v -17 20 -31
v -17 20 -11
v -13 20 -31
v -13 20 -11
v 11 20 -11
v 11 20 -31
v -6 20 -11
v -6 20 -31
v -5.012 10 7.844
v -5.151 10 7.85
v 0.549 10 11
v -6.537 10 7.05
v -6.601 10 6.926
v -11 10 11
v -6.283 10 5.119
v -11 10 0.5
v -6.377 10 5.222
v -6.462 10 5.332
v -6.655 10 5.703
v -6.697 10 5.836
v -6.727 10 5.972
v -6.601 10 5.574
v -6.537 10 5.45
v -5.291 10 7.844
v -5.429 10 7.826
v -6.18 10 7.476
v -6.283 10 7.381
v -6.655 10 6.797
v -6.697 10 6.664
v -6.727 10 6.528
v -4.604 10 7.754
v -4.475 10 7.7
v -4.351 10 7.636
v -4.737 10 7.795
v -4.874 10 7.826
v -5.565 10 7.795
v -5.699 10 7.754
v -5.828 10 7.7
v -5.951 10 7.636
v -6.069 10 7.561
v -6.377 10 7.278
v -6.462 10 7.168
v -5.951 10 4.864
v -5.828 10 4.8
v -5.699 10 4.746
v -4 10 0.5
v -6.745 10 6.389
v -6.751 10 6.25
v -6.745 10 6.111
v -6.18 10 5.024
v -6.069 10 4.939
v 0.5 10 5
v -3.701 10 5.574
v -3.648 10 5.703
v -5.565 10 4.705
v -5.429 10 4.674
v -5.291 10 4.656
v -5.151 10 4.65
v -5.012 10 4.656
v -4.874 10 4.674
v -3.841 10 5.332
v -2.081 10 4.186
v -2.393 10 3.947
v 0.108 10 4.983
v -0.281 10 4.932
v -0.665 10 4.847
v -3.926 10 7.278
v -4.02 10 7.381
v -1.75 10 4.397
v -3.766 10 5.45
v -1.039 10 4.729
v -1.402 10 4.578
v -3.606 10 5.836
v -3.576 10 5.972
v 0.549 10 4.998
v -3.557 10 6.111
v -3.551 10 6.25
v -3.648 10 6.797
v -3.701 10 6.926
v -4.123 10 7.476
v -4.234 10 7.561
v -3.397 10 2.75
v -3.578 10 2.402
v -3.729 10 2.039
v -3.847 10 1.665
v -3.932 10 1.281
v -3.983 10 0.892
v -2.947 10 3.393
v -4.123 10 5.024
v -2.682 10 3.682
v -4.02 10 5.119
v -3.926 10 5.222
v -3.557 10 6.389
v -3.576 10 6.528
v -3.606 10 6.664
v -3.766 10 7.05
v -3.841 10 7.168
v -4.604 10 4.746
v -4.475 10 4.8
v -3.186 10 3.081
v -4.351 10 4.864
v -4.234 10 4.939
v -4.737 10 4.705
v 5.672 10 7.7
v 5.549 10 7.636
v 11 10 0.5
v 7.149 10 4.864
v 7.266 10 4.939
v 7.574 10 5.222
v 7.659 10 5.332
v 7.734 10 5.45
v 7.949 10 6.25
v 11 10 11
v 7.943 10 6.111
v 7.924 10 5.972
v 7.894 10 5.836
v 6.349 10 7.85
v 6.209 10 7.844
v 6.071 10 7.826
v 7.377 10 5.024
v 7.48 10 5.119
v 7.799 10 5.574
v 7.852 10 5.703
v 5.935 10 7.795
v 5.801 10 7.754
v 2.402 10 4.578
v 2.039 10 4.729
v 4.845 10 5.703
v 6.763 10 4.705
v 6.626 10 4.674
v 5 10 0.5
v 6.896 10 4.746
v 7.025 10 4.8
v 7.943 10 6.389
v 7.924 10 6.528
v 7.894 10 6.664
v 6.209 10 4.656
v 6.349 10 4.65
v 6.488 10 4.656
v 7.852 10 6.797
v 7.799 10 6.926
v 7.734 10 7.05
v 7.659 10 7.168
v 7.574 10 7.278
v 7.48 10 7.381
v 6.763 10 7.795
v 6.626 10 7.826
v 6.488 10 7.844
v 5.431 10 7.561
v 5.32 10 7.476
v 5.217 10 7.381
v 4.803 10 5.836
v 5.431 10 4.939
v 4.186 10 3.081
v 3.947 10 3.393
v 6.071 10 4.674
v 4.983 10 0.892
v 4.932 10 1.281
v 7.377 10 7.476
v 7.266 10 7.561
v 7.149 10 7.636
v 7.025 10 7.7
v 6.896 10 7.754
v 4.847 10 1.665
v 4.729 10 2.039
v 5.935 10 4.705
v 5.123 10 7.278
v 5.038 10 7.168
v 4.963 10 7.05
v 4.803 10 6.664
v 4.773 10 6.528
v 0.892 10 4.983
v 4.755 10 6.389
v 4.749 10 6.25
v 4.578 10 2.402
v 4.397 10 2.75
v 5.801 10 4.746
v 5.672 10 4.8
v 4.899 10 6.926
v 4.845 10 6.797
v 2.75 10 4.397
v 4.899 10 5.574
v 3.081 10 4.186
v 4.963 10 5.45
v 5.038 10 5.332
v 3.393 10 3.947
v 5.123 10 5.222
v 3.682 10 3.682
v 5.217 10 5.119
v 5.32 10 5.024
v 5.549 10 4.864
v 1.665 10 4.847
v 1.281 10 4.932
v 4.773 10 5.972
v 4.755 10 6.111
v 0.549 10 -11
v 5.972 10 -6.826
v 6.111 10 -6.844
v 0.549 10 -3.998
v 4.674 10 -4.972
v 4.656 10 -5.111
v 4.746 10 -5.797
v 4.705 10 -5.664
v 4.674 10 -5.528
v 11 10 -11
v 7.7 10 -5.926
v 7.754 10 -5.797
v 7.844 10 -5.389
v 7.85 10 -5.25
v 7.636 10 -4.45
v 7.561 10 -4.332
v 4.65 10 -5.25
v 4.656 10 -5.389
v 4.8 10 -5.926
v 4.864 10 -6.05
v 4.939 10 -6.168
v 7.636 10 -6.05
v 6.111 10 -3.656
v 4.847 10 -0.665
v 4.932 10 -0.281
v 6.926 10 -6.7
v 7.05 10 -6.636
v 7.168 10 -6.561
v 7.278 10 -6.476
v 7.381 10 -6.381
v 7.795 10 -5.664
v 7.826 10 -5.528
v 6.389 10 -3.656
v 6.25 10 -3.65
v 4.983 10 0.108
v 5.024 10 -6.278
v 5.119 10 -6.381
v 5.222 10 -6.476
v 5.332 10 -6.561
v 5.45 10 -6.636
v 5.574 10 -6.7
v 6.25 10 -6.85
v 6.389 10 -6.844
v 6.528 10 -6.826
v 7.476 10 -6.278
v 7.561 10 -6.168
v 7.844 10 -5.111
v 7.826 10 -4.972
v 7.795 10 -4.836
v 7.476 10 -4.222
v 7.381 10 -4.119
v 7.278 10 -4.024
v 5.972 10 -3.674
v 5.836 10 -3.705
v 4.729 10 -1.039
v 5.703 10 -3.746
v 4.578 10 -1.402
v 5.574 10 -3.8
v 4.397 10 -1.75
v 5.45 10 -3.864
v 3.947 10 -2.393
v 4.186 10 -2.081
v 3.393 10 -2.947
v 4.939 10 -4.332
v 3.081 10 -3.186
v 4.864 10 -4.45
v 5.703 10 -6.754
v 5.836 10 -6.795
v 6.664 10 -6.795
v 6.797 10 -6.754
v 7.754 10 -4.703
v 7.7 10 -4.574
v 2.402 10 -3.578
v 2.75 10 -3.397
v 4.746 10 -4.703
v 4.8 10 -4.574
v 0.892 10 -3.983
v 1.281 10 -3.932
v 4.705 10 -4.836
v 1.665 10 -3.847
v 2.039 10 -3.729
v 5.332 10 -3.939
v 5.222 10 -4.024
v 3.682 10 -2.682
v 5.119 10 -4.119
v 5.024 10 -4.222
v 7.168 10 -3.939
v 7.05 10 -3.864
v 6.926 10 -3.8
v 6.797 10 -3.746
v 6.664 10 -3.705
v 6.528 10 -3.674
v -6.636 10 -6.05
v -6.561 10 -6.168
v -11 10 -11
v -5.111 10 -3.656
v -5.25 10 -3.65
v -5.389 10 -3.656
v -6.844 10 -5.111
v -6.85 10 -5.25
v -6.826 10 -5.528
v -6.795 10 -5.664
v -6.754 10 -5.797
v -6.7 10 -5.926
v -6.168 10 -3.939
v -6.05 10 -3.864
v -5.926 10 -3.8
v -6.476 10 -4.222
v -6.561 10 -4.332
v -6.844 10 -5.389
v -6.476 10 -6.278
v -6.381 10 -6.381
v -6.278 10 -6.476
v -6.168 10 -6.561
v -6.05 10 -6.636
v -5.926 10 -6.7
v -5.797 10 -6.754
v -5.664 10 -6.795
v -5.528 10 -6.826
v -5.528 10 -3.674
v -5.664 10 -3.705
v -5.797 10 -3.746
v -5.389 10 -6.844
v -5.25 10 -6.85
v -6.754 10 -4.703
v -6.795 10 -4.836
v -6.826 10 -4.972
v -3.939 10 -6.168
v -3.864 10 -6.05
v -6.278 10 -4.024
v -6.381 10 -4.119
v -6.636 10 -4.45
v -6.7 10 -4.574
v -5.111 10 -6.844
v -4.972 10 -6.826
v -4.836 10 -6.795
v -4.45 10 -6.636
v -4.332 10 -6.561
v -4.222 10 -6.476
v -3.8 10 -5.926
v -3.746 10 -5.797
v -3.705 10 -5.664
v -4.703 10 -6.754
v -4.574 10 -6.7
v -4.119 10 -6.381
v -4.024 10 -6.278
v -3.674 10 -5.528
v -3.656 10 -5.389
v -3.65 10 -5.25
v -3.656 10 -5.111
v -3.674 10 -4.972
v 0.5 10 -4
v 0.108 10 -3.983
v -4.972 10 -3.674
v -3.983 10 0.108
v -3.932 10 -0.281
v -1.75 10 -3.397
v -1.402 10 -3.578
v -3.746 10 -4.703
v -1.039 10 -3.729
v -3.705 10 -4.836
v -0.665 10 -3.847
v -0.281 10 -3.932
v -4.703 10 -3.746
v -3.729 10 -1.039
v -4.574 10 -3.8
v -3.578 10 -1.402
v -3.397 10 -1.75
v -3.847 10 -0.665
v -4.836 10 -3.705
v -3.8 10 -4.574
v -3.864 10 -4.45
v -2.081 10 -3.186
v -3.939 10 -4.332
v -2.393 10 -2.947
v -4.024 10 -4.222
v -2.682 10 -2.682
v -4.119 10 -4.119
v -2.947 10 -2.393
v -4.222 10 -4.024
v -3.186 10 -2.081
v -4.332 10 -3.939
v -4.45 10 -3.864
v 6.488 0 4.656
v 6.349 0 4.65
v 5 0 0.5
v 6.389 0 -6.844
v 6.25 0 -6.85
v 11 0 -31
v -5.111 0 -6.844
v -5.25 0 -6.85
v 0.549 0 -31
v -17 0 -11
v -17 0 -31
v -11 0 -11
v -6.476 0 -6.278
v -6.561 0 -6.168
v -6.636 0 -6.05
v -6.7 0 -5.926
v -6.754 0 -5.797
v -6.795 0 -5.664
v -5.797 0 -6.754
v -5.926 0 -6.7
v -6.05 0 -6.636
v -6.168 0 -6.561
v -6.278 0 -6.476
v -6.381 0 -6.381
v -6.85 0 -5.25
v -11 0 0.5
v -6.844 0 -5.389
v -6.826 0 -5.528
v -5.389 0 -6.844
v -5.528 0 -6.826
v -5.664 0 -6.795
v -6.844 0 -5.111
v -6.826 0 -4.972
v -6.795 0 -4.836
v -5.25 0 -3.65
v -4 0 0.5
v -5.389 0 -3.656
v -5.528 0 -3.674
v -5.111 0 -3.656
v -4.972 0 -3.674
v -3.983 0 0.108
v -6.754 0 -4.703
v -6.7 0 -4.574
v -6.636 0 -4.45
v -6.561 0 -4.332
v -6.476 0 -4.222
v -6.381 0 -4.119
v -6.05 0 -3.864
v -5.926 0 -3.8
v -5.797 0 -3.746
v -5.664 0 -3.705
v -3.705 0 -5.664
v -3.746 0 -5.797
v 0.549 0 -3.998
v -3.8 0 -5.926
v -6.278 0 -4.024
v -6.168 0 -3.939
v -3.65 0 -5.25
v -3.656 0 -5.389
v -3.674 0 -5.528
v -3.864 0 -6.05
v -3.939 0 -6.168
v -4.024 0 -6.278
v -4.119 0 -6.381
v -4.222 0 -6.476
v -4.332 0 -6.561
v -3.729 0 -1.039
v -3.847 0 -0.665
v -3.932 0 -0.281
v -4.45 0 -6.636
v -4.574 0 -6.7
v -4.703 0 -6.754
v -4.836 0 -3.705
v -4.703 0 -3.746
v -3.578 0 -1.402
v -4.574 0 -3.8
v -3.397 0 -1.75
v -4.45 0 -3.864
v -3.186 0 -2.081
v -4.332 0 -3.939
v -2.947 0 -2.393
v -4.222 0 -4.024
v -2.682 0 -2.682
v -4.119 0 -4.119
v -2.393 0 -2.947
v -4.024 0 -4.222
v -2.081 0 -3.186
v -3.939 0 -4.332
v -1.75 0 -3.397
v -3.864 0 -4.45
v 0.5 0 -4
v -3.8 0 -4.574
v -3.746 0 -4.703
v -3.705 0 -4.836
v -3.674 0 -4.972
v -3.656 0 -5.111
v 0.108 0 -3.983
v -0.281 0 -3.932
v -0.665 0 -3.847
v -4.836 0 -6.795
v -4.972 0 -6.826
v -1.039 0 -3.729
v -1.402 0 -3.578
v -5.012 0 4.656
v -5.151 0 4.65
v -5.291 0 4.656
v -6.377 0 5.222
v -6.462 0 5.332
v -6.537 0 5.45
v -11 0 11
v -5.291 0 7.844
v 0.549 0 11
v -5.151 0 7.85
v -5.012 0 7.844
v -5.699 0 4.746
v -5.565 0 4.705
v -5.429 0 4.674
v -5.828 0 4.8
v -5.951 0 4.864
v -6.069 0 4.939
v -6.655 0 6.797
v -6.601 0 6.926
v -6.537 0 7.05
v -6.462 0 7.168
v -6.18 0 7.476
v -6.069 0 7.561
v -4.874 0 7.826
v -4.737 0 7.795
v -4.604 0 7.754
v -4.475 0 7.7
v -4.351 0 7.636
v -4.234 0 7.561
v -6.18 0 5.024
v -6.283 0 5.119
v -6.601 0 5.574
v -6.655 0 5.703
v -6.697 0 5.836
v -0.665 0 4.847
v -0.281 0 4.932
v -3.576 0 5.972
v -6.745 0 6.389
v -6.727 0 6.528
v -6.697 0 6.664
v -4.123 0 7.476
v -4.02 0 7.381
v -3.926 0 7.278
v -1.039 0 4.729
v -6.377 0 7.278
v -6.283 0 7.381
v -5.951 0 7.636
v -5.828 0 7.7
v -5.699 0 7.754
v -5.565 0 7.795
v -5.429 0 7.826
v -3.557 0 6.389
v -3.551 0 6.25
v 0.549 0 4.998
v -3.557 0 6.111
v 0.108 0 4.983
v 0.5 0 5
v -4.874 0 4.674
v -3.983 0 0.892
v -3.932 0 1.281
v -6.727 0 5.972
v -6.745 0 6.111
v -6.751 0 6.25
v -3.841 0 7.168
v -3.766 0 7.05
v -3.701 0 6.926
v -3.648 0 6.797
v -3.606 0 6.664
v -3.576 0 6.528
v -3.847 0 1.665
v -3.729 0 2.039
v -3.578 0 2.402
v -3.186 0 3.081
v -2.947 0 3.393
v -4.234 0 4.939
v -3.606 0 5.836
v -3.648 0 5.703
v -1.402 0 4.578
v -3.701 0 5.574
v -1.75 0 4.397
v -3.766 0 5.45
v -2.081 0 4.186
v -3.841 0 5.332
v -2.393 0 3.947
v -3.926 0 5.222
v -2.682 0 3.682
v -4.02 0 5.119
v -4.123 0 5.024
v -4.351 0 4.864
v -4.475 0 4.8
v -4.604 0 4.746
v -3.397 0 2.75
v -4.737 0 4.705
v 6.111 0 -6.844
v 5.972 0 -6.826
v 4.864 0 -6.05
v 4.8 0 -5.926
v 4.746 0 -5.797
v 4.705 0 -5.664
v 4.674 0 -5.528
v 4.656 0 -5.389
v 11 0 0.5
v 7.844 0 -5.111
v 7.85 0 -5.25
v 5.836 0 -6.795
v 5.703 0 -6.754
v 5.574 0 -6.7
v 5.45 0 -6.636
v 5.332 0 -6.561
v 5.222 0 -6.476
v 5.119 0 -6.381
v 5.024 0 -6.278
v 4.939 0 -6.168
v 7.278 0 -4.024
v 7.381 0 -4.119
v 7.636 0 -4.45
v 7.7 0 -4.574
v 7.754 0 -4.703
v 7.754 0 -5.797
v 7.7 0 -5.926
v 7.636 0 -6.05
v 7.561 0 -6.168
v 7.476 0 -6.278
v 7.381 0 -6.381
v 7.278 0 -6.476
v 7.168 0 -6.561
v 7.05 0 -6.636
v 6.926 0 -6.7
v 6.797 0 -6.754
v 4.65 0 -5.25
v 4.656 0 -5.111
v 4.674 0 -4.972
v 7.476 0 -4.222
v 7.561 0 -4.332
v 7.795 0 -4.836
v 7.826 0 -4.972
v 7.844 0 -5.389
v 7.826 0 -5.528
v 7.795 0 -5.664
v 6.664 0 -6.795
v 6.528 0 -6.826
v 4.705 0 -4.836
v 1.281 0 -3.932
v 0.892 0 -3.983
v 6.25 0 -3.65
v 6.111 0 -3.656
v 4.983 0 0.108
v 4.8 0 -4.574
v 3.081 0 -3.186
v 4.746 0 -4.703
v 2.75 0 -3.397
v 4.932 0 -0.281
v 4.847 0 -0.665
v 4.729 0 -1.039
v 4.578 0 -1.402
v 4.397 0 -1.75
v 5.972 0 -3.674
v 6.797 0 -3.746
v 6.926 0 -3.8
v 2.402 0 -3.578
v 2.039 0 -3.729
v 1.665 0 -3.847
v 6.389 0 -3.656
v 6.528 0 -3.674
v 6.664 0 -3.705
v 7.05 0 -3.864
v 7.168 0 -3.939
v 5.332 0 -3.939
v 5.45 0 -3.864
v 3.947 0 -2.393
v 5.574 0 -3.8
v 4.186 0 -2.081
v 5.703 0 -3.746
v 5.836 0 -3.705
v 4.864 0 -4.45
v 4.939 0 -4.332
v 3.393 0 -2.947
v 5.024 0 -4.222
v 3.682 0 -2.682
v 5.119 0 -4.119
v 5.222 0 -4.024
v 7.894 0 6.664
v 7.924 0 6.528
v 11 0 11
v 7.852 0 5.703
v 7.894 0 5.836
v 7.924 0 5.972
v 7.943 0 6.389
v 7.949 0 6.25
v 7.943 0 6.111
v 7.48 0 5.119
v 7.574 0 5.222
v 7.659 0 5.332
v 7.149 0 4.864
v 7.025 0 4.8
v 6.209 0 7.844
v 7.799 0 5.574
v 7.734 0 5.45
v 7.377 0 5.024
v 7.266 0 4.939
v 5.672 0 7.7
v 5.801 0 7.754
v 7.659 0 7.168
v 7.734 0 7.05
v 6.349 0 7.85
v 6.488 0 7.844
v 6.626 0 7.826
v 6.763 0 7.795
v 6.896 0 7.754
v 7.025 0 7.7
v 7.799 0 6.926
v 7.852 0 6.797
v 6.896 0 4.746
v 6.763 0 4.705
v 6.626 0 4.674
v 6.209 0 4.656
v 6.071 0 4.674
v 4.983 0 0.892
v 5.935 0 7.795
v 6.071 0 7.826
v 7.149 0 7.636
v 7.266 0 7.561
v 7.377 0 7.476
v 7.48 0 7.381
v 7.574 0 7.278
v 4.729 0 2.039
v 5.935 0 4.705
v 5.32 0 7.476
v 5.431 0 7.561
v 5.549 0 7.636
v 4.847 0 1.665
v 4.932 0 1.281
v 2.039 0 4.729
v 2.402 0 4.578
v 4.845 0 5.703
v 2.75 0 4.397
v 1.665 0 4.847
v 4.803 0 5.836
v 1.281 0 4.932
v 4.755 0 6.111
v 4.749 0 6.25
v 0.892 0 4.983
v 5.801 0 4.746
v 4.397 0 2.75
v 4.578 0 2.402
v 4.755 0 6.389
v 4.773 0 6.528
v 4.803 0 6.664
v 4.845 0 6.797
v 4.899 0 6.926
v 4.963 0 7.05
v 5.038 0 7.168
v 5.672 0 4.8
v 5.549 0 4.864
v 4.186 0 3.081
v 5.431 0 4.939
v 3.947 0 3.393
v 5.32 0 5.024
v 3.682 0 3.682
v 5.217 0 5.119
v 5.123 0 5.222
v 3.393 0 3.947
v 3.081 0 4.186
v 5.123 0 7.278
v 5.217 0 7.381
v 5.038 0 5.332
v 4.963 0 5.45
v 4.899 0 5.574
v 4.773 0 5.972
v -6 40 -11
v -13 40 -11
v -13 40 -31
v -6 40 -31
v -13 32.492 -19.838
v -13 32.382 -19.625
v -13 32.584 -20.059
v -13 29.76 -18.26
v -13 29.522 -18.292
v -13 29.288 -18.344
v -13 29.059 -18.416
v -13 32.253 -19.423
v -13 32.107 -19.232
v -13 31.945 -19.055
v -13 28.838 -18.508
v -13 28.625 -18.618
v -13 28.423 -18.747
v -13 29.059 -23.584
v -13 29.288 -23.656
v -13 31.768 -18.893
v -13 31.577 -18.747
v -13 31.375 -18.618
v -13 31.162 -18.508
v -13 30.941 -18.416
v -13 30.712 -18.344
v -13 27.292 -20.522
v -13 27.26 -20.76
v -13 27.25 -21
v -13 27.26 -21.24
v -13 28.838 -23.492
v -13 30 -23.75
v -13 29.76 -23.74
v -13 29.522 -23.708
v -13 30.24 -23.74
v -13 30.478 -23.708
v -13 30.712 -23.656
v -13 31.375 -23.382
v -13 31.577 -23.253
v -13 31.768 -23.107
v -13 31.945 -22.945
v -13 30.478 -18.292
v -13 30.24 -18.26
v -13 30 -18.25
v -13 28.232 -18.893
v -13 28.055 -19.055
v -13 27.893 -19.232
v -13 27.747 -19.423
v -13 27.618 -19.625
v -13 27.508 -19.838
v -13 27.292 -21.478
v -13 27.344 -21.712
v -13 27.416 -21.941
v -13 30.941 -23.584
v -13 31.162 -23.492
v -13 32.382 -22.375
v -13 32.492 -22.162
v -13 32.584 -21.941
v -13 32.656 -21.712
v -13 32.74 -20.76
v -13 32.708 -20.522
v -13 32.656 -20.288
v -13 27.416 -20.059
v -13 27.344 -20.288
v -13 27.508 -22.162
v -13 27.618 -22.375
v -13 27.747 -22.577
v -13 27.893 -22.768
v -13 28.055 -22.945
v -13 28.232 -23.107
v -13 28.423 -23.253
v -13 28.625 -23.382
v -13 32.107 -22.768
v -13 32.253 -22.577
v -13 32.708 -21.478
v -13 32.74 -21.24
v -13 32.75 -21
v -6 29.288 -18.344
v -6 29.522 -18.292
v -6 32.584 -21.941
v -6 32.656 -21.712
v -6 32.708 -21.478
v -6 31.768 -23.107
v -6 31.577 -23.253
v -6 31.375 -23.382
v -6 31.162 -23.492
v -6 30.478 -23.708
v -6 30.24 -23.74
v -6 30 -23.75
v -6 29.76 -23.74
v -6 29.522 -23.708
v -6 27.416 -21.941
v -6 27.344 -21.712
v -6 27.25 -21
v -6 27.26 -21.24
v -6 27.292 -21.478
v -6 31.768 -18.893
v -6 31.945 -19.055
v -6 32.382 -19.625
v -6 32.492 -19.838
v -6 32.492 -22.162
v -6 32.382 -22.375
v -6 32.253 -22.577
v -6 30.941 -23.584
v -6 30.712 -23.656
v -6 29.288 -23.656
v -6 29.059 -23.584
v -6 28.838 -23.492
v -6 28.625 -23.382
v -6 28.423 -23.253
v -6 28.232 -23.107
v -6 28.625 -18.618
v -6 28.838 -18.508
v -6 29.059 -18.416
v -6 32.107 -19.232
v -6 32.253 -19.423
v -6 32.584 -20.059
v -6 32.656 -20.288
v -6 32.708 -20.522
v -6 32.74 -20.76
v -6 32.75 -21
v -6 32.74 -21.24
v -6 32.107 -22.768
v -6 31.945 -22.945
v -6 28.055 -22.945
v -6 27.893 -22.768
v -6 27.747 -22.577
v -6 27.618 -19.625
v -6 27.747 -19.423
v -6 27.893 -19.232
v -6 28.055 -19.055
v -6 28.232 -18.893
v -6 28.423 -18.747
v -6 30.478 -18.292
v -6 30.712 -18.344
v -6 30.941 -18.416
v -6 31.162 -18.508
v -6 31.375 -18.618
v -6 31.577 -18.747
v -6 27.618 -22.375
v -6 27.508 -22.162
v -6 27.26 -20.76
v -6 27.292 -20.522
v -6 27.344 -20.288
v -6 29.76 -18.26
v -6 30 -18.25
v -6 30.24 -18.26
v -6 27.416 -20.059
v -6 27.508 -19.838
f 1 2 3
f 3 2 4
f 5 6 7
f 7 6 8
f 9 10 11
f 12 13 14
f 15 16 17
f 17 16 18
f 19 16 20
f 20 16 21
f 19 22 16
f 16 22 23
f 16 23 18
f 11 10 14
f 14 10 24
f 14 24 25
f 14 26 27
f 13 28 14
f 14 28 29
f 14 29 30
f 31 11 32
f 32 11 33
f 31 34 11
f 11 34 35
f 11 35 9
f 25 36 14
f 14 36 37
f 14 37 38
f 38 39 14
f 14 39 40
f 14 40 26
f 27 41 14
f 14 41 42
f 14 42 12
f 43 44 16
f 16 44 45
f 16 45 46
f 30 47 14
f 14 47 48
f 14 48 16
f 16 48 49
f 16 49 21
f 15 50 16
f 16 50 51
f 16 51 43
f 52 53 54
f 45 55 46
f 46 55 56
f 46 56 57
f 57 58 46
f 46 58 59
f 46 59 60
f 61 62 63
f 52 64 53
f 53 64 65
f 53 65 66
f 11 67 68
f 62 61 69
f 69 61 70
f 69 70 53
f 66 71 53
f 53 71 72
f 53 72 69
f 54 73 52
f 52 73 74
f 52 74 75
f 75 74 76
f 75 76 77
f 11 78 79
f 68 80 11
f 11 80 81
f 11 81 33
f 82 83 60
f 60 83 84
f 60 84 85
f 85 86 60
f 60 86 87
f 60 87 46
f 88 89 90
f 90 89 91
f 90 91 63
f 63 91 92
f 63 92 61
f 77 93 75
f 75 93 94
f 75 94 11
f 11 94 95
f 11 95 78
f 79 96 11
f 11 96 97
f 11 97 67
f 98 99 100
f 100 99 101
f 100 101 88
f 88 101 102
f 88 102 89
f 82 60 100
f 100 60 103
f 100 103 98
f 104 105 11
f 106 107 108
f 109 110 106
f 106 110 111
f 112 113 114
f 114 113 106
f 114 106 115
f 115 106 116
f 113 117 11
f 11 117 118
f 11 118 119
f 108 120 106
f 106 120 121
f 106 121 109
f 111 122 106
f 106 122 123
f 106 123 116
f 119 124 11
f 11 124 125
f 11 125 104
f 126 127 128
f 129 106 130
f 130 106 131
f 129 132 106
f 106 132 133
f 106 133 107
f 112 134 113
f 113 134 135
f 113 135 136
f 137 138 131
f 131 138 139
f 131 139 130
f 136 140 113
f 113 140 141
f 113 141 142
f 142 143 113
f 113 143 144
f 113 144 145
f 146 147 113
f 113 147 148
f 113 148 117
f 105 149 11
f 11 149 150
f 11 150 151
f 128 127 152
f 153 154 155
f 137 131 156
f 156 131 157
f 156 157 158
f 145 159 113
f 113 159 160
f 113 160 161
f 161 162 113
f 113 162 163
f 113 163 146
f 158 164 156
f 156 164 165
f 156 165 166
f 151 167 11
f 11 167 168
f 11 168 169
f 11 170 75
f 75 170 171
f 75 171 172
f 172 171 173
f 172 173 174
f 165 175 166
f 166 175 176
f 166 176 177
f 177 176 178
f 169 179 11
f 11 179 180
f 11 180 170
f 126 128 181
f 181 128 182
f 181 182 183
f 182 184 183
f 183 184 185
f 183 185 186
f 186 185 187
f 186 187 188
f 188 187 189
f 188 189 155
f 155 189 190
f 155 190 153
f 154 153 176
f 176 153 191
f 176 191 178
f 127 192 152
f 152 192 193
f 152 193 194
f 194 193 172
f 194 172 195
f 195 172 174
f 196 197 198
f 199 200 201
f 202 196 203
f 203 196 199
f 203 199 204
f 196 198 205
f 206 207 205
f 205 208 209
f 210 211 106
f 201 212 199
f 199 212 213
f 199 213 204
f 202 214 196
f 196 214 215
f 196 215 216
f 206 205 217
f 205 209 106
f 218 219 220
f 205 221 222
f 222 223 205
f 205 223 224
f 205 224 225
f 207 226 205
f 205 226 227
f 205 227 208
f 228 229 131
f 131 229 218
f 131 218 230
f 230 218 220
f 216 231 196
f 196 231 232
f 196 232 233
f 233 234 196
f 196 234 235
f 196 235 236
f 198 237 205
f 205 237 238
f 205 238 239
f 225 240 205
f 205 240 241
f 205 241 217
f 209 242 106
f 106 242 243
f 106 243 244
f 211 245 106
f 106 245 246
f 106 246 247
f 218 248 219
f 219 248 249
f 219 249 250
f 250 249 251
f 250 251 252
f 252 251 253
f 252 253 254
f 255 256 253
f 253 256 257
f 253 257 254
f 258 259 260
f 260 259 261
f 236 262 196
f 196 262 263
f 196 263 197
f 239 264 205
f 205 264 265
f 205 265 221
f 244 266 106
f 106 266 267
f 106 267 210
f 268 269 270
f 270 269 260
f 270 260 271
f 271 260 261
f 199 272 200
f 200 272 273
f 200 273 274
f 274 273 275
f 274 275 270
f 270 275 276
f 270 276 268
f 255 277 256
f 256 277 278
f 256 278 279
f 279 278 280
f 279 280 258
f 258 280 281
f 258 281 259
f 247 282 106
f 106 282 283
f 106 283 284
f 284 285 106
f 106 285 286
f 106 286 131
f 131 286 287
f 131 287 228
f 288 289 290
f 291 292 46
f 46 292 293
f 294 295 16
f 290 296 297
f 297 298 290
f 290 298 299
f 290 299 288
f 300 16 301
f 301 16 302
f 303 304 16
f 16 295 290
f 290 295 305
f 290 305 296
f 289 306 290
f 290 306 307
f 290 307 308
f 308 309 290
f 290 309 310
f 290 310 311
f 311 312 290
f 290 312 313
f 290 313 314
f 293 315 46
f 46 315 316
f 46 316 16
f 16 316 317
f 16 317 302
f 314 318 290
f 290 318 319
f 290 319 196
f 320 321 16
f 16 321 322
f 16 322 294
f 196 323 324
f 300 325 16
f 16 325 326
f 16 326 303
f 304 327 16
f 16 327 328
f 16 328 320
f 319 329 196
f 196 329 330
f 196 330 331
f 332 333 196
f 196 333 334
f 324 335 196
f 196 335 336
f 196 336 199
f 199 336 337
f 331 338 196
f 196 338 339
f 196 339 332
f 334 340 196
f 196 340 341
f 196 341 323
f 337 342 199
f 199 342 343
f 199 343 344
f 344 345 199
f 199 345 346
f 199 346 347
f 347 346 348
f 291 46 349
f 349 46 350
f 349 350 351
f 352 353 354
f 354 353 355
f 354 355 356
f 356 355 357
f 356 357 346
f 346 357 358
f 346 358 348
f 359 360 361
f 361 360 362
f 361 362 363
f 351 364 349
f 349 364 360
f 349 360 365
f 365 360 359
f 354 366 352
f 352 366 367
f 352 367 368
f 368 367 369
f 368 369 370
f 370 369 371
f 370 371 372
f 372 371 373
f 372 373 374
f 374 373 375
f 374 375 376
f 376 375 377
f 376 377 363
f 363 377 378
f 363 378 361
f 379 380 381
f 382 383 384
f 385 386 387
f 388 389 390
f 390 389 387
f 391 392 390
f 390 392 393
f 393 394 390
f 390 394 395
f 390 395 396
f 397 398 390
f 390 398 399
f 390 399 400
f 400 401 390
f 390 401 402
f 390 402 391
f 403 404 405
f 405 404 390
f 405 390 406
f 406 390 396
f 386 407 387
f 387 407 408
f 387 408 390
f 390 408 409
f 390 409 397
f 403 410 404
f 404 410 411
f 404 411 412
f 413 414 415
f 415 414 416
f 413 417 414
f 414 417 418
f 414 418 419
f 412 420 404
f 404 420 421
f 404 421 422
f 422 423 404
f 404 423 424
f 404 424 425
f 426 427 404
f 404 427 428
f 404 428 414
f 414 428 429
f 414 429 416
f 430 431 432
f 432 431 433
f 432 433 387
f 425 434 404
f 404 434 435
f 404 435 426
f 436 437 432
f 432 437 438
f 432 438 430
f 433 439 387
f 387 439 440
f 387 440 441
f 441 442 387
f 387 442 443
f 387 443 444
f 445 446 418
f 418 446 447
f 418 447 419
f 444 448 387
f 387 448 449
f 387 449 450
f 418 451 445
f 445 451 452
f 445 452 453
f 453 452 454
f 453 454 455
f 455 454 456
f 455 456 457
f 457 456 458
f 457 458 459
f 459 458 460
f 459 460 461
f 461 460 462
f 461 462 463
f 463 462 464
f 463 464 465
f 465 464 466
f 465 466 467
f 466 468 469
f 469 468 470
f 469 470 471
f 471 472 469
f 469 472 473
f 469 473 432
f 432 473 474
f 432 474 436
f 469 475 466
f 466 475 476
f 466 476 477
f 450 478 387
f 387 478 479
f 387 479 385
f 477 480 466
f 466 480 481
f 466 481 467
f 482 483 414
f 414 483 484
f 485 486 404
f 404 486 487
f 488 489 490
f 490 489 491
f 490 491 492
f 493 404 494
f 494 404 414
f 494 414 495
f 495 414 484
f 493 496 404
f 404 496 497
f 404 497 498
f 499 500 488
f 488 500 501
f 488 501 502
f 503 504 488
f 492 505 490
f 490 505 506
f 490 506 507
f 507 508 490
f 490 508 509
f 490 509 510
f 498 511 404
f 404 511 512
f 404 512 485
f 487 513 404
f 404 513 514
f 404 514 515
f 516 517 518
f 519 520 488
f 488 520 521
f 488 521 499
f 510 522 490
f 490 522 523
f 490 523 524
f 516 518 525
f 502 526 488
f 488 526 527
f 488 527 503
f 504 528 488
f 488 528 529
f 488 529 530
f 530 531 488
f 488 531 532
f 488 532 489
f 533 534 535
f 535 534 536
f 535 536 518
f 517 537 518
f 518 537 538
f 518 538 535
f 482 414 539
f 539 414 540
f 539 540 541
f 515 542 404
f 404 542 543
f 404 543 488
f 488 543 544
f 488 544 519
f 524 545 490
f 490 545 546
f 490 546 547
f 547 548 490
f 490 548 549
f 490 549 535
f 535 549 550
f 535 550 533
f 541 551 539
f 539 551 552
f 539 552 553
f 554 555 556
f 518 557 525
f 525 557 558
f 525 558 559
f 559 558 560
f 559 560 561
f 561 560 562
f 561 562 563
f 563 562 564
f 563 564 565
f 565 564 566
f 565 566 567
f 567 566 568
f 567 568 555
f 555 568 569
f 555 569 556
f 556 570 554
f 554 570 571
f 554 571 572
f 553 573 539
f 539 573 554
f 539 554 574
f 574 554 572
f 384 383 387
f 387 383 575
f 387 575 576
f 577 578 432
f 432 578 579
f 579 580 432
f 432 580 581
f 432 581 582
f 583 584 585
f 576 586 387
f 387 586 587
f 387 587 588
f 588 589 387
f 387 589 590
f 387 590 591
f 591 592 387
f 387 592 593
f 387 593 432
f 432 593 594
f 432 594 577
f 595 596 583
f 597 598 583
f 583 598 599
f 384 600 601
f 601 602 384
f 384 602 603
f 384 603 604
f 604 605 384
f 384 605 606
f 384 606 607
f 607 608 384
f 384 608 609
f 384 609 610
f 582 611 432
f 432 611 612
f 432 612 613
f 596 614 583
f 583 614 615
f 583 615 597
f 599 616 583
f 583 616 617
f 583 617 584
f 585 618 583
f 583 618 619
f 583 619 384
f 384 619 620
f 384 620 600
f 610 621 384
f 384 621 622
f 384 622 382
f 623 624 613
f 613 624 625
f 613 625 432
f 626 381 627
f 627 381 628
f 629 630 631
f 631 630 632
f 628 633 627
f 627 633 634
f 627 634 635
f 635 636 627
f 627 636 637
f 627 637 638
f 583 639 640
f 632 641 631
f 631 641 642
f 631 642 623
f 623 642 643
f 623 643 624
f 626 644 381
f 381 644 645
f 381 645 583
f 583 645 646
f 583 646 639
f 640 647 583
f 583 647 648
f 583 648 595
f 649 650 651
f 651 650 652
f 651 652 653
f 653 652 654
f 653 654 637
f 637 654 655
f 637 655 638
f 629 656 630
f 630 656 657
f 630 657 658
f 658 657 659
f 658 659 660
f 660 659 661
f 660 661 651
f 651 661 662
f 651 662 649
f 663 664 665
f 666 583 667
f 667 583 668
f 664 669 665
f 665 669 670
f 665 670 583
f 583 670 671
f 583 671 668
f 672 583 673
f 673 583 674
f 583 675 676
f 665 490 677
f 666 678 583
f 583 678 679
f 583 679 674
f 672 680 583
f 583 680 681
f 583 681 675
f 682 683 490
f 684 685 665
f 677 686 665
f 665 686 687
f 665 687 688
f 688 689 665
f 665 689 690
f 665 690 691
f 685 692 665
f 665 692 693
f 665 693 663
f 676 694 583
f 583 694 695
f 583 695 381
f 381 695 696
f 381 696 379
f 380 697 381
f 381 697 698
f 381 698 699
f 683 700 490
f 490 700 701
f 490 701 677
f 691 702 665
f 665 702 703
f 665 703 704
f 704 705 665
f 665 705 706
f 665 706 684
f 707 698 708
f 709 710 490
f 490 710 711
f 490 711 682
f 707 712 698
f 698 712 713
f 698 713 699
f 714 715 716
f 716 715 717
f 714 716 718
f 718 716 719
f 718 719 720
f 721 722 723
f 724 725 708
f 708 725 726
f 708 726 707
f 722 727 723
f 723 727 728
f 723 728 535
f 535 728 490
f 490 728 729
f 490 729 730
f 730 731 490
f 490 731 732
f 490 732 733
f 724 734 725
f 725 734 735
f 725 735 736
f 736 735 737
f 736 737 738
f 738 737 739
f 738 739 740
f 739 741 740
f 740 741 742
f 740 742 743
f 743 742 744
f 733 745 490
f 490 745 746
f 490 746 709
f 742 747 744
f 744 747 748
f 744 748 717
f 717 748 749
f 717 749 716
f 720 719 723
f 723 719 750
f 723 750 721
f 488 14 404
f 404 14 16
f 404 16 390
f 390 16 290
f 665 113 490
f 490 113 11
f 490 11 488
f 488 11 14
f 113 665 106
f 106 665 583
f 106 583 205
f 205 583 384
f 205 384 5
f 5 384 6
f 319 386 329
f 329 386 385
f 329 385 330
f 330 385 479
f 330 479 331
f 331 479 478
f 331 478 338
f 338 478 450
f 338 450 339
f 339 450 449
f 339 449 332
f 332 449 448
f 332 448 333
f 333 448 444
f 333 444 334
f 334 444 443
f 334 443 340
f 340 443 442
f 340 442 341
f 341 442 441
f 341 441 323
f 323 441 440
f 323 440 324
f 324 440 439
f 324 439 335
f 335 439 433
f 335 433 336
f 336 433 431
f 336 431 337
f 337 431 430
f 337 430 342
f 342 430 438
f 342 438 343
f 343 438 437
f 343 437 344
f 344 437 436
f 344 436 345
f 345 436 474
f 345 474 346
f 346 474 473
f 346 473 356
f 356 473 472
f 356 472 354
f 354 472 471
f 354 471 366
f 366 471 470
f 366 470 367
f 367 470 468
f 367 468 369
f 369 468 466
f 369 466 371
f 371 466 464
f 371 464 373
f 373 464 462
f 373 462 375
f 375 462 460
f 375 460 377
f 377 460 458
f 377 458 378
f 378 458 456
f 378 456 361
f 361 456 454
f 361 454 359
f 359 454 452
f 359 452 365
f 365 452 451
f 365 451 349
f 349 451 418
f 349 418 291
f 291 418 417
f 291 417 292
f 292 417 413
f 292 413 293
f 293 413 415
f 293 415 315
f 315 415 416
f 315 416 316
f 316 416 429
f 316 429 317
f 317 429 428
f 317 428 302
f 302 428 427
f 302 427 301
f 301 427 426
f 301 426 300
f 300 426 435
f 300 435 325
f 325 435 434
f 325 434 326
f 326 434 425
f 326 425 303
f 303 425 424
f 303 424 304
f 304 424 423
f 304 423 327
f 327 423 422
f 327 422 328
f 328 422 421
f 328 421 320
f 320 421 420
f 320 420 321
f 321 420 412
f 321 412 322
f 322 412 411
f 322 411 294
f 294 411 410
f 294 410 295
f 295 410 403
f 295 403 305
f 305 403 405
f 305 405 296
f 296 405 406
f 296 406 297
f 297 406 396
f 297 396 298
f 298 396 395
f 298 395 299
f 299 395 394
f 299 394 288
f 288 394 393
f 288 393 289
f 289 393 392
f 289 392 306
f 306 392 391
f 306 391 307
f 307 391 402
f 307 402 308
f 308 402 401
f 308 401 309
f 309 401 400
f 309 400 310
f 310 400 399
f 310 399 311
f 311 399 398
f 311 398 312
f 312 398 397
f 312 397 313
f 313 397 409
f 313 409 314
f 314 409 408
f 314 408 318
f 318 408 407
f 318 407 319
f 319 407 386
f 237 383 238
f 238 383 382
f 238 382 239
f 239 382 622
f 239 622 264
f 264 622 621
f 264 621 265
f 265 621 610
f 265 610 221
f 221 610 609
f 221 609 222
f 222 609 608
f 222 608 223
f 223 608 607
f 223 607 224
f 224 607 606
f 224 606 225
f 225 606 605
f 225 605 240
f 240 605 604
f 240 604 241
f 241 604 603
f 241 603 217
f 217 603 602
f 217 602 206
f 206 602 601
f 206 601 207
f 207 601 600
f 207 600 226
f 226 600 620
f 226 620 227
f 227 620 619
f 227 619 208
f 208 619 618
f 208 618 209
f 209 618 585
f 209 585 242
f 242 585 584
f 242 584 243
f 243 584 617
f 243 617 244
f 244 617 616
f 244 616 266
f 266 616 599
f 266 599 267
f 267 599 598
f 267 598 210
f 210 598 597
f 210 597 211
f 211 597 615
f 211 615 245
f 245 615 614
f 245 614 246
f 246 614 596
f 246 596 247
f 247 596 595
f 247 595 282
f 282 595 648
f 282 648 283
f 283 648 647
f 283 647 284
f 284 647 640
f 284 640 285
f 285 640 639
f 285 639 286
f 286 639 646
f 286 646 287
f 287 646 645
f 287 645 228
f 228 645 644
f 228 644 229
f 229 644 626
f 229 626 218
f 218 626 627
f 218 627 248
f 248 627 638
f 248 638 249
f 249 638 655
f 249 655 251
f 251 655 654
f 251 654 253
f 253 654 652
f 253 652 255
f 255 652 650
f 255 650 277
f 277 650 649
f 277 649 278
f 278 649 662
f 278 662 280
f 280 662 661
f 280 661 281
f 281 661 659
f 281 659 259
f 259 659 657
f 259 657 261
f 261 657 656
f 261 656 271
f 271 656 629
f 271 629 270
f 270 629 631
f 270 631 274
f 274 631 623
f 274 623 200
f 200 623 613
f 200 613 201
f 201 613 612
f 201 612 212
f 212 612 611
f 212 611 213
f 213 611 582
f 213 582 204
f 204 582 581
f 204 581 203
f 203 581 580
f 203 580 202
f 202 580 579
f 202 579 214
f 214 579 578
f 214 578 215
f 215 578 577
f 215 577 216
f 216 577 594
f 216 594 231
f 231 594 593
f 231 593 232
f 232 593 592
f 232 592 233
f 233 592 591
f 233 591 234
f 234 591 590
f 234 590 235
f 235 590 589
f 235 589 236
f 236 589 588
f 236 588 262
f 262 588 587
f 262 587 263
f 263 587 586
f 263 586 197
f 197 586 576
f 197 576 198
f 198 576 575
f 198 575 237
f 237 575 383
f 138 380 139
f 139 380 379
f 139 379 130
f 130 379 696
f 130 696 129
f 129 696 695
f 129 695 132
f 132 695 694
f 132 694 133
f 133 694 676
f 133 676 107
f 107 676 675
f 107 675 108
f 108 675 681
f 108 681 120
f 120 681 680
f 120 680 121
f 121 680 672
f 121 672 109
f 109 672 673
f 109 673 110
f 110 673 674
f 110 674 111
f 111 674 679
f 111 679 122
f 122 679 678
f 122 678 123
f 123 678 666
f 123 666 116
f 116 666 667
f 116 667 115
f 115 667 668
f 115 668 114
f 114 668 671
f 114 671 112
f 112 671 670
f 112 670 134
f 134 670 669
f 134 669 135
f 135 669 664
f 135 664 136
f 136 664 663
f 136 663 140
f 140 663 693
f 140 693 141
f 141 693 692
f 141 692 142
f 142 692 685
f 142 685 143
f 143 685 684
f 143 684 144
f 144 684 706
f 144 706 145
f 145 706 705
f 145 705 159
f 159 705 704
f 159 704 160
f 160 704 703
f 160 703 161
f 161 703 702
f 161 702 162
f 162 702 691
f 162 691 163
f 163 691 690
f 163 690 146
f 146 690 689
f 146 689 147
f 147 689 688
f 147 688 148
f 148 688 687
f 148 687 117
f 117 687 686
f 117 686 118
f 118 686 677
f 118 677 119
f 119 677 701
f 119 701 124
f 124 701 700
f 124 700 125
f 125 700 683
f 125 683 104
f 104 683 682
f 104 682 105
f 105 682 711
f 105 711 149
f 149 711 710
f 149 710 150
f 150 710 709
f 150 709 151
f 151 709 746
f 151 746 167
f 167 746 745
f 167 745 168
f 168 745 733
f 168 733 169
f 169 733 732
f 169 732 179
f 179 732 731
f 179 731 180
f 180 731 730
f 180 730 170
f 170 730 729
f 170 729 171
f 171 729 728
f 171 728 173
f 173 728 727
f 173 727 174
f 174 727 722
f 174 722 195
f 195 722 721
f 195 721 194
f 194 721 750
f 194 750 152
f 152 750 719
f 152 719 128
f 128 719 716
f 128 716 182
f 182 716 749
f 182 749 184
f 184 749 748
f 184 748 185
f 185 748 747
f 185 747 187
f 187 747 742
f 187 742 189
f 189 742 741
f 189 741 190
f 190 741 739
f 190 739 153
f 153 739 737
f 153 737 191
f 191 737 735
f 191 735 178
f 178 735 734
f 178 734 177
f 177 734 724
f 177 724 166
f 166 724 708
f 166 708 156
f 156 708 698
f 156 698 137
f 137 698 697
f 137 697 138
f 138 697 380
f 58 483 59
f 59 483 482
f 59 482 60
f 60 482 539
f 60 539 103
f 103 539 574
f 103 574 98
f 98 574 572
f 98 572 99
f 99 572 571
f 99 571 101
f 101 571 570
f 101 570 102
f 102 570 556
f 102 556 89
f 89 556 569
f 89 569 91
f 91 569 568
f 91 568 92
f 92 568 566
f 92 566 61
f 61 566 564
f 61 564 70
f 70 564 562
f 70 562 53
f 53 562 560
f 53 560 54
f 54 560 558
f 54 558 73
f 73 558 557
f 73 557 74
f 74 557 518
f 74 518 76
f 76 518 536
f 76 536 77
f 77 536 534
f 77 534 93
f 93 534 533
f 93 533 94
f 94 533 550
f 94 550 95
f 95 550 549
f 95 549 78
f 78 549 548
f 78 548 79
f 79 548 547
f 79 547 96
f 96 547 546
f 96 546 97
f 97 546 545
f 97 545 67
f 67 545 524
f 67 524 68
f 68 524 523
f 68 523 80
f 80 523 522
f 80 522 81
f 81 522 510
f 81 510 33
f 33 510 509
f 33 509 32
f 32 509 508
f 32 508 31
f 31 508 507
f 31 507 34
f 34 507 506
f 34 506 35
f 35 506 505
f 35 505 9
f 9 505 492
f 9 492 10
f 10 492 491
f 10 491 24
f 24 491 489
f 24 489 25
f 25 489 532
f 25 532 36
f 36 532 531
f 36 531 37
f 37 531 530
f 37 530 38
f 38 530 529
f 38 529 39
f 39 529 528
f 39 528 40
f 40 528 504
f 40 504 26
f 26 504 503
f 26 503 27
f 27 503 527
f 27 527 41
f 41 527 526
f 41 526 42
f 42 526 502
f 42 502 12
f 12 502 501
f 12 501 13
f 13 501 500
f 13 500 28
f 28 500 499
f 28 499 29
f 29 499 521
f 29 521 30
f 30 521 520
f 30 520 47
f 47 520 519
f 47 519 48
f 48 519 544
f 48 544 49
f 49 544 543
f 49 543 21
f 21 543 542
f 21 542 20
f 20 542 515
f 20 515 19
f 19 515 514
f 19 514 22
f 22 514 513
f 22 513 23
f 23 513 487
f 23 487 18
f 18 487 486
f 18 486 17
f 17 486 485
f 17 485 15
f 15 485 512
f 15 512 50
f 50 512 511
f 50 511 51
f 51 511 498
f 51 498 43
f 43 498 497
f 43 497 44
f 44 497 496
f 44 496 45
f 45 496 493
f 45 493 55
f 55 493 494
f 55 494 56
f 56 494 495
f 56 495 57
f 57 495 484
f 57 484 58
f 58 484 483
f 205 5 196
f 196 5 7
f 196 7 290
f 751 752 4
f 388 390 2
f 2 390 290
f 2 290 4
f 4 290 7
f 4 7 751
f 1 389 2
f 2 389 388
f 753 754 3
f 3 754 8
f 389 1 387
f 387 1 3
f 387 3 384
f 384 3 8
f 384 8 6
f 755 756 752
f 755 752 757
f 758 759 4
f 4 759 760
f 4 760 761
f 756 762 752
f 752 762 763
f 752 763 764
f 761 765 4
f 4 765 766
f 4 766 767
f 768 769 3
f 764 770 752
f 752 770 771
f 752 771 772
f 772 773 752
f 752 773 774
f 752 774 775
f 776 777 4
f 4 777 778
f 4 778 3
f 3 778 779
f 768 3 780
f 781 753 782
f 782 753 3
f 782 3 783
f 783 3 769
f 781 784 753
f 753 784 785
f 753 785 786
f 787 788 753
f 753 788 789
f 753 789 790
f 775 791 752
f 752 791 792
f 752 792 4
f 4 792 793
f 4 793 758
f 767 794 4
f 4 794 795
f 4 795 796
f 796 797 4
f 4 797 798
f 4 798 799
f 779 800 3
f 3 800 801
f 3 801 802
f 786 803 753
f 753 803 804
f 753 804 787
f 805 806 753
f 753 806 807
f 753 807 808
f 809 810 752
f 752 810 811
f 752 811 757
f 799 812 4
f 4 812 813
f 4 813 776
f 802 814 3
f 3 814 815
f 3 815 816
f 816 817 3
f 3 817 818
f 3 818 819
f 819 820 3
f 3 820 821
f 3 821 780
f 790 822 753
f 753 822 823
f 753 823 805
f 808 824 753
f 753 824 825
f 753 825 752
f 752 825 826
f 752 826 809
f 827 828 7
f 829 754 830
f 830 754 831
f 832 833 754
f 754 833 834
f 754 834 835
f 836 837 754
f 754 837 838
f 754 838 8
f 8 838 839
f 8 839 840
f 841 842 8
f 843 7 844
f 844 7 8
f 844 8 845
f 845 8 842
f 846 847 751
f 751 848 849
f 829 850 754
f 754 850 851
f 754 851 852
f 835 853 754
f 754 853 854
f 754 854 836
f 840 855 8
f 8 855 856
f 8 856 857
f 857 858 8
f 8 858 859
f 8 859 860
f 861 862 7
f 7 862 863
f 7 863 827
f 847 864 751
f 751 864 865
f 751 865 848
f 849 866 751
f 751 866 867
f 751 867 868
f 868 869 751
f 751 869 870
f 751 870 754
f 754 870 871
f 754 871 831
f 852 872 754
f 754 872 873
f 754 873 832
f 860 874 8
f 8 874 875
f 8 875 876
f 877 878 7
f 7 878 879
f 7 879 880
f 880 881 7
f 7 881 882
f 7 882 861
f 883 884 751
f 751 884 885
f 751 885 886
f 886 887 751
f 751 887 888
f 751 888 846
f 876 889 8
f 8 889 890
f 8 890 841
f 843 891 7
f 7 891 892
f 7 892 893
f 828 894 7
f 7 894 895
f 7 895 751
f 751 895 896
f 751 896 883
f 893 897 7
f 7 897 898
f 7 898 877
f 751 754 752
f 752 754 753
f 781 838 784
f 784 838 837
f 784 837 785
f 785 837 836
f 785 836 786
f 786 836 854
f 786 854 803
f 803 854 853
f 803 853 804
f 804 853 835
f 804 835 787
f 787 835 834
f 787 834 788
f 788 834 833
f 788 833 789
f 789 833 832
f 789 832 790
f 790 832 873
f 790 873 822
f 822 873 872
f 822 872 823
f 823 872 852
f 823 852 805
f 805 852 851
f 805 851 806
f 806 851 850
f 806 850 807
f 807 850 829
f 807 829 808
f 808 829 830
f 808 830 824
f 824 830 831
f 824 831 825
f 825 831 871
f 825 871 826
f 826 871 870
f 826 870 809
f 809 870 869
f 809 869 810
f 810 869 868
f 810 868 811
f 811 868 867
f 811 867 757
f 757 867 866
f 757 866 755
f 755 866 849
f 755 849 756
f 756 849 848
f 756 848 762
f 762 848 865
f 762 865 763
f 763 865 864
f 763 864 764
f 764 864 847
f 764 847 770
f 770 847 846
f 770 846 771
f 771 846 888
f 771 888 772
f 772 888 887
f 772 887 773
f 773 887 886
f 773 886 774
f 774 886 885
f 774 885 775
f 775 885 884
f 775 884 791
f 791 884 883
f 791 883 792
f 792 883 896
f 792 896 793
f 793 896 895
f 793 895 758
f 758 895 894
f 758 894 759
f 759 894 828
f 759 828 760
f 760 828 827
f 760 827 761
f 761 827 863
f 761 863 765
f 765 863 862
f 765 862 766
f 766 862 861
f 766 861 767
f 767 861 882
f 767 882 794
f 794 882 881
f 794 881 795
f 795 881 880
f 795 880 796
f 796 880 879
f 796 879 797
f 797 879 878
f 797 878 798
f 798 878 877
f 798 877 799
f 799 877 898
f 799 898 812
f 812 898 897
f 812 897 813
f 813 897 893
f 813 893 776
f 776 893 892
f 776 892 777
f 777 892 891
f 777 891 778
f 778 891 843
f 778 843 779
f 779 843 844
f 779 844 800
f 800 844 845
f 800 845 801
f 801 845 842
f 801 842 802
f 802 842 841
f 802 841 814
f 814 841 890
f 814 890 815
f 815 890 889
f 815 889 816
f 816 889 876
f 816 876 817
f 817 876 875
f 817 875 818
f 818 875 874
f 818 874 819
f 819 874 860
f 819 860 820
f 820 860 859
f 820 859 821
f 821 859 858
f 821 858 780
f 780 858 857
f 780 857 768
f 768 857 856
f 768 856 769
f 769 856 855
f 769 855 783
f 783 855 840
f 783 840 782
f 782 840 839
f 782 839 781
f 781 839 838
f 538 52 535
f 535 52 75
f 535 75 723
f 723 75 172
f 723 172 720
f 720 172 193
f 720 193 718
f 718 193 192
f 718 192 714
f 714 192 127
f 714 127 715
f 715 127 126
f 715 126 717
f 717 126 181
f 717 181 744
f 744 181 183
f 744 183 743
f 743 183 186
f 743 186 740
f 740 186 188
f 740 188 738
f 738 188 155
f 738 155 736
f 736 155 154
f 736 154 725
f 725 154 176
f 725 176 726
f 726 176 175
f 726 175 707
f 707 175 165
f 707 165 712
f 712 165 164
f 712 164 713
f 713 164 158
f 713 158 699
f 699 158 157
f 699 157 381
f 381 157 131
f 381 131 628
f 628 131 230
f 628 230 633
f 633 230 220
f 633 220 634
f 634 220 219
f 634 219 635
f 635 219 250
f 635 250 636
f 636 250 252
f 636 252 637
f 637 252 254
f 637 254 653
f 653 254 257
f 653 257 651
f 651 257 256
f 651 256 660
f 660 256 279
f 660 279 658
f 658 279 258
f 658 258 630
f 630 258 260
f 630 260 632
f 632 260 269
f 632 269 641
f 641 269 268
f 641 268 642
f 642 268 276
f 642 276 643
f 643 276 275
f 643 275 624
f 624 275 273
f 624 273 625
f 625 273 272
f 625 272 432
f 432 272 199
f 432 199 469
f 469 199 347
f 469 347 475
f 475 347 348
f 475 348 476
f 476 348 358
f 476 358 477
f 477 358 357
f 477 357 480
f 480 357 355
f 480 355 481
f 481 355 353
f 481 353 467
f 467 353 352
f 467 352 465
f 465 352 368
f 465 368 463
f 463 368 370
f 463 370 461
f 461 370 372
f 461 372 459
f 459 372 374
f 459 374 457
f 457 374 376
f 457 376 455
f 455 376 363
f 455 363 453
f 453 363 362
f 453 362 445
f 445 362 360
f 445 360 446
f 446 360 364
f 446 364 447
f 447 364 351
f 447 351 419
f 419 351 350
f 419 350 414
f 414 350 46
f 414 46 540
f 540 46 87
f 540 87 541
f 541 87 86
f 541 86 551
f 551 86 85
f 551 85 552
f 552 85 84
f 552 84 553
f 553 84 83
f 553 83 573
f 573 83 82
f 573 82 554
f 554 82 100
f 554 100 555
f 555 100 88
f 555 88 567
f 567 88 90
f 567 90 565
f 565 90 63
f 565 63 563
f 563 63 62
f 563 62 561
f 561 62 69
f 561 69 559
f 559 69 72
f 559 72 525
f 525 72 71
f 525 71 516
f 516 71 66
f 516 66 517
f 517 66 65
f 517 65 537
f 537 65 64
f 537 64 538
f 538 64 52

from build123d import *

# Parameters (mm, degrees)
SKETCH1_W           = 22
SKETCH1_H           = 22
SKETCH1_R           = 1.6
BOSS_EXTRUDE1_DEPTH = 10
SKETCH2_W           = 28
SKETCH2_H           = 20
BOSS_EXTRUDE2_DEPTH = 20
SKETCH3_W           = 7
SKETCH3_H           = 20
BOSS_EXTRUDE3_DEPTH = 20
SKETCH4_R           = 2.75
CUT_EXTRUDE1_DEPTH  = 12
SKETCH5_R           = 4.5
CUT_EXTRUDE2_DEPTH  = 11


with BuildPart() as part:
    # Sketch1 → Boss-Extrude1 (new body)
    with BuildSketch(Plane(origin=(0, 0, 0), x_dir=(1, 0, 0), z_dir=(0, 1, 0))):
        Rectangle(SKETCH1_W, SKETCH1_H)
        with Locations((-5.25, 5.25)):
            Circle(SKETCH1_R, mode=Mode.SUBTRACT)
        with Locations((6.25, 5.25)):
            Circle(SKETCH1_R, mode=Mode.SUBTRACT)
        with Locations((6.348618383, -6.25)):
            Circle(SKETCH1_R, mode=Mode.SUBTRACT)
        with Locations((-5.151381617, -6.25)):
            Circle(SKETCH1_R, mode=Mode.SUBTRACT)
    extrude(amount=BOSS_EXTRUDE1_DEPTH)

    # Sketch2 → Boss-Extrude2 (add)
    with BuildSketch(Plane(origin=(0, 0, -11), x_dir=(-1, 0, 0), z_dir=(0, 0, -1))):
        with Locations((3, 10)):
            Rectangle(SKETCH2_W, SKETCH2_H)
    extrude(amount=BOSS_EXTRUDE2_DEPTH)

    # Sketch3 → Boss-Extrude3 (add)
    with BuildSketch(Plane(origin=(0, 20, 0), x_dir=(1, 0, 0), z_dir=(0, 1, 0))):
        with Locations((-9.5, 21)):
            Rectangle(SKETCH3_W, SKETCH3_H)
    extrude(amount=BOSS_EXTRUDE3_DEPTH)

    # Sketch4 → Cut-Extrude1 (cut, through all)
    with BuildSketch(Plane(origin=(-6, 0, 0), x_dir=(0, 0, -1), z_dir=(1, 0, 0))):
        with Locations((21, 30)):
            Circle(SKETCH4_R)
    extrude(amount=-CUT_EXTRUDE1_DEPTH, mode=Mode.SUBTRACT)

    # Sketch5 → Cut-Extrude2 (cut, through all)
    with BuildSketch(Plane(origin=(0, 10, 0), x_dir=(1, 0, 0), z_dir=(0, 1, 0))):
        with Locations((0.5, -0.5)):
            Circle(SKETCH5_R)
    extrude(amount=-CUT_EXTRUDE2_DEPTH, mode=Mode.SUBTRACT)


solid = part.part
